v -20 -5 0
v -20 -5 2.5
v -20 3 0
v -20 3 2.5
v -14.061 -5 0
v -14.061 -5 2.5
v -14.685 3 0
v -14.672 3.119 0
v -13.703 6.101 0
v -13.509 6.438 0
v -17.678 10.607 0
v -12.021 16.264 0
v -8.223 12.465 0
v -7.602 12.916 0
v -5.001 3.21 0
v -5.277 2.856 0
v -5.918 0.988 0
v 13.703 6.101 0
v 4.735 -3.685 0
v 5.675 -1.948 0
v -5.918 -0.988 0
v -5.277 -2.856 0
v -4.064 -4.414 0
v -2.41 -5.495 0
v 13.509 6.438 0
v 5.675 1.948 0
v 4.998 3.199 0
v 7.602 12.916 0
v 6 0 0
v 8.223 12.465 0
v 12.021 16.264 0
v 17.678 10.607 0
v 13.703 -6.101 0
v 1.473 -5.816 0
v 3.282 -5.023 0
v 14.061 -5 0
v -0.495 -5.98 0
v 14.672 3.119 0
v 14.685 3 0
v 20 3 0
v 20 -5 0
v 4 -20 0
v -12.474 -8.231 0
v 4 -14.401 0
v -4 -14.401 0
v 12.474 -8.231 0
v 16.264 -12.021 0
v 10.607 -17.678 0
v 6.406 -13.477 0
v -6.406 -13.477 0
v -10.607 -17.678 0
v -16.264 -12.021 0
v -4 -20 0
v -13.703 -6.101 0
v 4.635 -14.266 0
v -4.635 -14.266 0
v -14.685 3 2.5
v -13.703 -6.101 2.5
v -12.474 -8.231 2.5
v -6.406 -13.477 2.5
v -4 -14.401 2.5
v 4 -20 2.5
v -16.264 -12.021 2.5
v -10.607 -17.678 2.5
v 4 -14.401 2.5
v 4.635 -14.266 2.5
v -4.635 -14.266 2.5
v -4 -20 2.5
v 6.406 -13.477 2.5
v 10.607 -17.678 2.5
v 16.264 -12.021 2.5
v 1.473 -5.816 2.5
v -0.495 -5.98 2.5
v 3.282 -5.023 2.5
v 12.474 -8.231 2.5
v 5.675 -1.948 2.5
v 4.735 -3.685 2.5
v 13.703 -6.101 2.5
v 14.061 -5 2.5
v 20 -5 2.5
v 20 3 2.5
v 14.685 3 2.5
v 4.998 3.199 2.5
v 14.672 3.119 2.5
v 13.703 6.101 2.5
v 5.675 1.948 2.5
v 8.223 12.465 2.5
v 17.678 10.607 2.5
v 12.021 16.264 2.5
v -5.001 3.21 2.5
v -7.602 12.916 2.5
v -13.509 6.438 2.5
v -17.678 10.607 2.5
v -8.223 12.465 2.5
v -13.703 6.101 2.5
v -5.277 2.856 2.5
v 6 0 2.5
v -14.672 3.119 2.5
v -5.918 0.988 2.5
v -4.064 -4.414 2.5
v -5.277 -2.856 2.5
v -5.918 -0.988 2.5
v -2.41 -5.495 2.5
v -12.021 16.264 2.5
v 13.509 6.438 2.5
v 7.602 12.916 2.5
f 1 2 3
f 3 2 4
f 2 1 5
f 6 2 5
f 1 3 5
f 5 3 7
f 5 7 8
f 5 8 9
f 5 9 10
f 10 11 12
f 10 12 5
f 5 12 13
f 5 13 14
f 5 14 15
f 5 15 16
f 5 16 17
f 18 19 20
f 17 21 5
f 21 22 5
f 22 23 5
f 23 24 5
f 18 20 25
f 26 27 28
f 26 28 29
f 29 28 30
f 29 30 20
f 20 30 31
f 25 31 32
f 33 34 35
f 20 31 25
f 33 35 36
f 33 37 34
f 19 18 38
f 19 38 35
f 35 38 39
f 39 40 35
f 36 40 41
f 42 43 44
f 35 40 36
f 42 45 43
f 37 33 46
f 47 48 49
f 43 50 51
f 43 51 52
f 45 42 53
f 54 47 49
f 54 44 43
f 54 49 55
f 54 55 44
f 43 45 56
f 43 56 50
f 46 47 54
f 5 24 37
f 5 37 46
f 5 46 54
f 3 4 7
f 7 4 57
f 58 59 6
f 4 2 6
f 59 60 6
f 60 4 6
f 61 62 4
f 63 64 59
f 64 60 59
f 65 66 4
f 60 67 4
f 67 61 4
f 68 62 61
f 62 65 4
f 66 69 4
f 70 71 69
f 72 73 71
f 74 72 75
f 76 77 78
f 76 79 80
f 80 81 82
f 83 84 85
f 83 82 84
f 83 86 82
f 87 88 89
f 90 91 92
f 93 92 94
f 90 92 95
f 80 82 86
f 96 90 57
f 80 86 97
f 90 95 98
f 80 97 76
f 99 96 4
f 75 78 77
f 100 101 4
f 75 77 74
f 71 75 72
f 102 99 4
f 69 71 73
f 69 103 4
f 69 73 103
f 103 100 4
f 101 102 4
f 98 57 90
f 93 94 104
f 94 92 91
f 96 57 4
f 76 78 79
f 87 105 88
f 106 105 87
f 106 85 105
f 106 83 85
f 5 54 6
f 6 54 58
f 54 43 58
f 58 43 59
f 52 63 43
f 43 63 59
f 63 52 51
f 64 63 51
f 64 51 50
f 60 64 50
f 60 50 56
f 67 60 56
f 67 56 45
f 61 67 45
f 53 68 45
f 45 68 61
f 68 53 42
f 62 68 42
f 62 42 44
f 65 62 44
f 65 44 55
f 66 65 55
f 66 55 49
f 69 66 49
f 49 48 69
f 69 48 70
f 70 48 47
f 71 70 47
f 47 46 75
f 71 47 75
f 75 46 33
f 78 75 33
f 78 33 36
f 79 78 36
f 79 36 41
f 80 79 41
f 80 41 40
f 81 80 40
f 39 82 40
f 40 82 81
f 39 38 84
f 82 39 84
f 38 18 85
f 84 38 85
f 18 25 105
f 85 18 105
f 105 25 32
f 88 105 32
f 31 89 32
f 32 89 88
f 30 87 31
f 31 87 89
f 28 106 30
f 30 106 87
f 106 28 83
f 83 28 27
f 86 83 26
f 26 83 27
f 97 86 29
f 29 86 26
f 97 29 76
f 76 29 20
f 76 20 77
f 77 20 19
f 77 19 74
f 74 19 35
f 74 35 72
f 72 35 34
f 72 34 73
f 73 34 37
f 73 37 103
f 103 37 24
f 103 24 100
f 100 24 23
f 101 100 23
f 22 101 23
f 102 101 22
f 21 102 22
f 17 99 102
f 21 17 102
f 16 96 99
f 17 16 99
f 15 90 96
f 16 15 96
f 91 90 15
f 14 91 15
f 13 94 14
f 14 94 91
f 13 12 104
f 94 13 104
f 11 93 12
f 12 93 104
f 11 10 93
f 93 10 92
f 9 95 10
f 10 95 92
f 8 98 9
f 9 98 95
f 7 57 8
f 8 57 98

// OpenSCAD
difference () {
cylinder (2.5,15,15);
translate ([0,0,-1]) cylinder (5,6,6);
translate ([-4,0,-1])cube ([8,50,5]);
rotate ([0,0,15])translate ([-4,0,-1])cube ([8,50,5]);
rotate ([0,0,-15])translate ([-4,0,-1])cube ([8,50,5]);
}
translate ([-20,-5,0])cube ([8,8,2.5]);
translate ([12,-5,0])cube ([8,8,2.5]);
rotate ([0,0,-45])translate ([12,-5,0])cube ([8,8,2.5]);
rotate ([0,0,45])translate ([-20,-5,0])cube ([8,8,2.5]);
translate ([-4,-20,0])cube ([8,8,2.5]);
difference () {
rotate ([0,0,45])translate ([12,-5,0])cube ([8,8,2.5]);
rotate ([0,0,-15])translate ([-4,0,-1])cube ([8,50,5]);
}
difference () {
rotate ([0,0,-45])translate ([-20,-5,0])cube ([8,8,2.5]);
rotate ([0,0,15])translate ([-4,0,-1])cube ([8,50,5]);
}
